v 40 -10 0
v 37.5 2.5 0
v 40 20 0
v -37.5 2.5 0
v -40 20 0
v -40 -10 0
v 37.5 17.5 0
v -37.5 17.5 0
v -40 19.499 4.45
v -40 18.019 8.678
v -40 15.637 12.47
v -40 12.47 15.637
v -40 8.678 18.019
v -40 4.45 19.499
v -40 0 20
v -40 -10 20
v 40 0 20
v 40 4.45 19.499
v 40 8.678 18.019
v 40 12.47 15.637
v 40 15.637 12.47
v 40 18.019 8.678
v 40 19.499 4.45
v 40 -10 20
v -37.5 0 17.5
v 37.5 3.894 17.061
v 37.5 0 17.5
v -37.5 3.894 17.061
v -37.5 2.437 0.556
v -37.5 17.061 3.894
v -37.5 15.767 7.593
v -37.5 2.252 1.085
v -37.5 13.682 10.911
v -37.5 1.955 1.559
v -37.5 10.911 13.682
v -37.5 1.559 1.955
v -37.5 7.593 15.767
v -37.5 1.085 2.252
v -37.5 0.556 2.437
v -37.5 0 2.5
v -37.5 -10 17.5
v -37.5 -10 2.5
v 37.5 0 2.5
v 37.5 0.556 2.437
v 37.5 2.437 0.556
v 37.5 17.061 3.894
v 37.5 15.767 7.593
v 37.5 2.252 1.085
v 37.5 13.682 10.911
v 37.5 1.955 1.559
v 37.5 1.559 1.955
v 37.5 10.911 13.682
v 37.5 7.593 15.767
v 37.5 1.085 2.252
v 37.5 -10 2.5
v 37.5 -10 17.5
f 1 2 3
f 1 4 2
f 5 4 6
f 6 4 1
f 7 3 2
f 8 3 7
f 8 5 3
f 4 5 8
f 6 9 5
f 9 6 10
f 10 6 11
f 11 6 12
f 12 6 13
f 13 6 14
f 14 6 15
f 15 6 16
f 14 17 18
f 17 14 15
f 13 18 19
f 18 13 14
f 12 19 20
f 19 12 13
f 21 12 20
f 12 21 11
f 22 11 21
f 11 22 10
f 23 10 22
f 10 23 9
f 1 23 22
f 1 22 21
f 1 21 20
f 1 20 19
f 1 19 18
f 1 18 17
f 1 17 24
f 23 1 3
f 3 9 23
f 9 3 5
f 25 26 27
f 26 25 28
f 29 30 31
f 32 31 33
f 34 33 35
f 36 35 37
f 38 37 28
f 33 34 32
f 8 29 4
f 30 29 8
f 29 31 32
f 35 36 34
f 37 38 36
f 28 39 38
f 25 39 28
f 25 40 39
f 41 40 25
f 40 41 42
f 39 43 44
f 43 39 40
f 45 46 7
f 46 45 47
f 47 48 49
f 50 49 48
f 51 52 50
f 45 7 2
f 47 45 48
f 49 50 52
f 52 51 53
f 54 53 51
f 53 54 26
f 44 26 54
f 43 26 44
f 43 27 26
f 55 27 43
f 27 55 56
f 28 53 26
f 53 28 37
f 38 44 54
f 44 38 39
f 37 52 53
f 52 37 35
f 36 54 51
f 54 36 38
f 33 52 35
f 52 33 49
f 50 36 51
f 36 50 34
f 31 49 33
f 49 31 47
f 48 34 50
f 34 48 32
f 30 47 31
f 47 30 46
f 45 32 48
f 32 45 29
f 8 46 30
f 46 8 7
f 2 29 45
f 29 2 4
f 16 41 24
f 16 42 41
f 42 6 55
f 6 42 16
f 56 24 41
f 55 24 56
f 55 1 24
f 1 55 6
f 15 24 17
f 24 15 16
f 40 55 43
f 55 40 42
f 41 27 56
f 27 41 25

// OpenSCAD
echo(version=version());

fan_width=75;
fan_height=15;


// simple 2D -> 3D extrusion of a rectangle
color("red")
rotate(a=[0,-90,0])
        rotate_extrude(angle=90)
        translate([(fan_height+5)/2,0,0]) difference() {
           square([fan_height+5, fan_width+5], center = true);
           square([fan_height, fan_width], center = true);
        };

color("blue")
rotate(a=[90,-90,0])
        linear_extrude(height=10)
    translate([(fan_height+5)/2,0,0]) difference() {
           square([fan_height+5, fan_width+5], center = true);
           square([fan_height, fan_width], center = true);
        }
